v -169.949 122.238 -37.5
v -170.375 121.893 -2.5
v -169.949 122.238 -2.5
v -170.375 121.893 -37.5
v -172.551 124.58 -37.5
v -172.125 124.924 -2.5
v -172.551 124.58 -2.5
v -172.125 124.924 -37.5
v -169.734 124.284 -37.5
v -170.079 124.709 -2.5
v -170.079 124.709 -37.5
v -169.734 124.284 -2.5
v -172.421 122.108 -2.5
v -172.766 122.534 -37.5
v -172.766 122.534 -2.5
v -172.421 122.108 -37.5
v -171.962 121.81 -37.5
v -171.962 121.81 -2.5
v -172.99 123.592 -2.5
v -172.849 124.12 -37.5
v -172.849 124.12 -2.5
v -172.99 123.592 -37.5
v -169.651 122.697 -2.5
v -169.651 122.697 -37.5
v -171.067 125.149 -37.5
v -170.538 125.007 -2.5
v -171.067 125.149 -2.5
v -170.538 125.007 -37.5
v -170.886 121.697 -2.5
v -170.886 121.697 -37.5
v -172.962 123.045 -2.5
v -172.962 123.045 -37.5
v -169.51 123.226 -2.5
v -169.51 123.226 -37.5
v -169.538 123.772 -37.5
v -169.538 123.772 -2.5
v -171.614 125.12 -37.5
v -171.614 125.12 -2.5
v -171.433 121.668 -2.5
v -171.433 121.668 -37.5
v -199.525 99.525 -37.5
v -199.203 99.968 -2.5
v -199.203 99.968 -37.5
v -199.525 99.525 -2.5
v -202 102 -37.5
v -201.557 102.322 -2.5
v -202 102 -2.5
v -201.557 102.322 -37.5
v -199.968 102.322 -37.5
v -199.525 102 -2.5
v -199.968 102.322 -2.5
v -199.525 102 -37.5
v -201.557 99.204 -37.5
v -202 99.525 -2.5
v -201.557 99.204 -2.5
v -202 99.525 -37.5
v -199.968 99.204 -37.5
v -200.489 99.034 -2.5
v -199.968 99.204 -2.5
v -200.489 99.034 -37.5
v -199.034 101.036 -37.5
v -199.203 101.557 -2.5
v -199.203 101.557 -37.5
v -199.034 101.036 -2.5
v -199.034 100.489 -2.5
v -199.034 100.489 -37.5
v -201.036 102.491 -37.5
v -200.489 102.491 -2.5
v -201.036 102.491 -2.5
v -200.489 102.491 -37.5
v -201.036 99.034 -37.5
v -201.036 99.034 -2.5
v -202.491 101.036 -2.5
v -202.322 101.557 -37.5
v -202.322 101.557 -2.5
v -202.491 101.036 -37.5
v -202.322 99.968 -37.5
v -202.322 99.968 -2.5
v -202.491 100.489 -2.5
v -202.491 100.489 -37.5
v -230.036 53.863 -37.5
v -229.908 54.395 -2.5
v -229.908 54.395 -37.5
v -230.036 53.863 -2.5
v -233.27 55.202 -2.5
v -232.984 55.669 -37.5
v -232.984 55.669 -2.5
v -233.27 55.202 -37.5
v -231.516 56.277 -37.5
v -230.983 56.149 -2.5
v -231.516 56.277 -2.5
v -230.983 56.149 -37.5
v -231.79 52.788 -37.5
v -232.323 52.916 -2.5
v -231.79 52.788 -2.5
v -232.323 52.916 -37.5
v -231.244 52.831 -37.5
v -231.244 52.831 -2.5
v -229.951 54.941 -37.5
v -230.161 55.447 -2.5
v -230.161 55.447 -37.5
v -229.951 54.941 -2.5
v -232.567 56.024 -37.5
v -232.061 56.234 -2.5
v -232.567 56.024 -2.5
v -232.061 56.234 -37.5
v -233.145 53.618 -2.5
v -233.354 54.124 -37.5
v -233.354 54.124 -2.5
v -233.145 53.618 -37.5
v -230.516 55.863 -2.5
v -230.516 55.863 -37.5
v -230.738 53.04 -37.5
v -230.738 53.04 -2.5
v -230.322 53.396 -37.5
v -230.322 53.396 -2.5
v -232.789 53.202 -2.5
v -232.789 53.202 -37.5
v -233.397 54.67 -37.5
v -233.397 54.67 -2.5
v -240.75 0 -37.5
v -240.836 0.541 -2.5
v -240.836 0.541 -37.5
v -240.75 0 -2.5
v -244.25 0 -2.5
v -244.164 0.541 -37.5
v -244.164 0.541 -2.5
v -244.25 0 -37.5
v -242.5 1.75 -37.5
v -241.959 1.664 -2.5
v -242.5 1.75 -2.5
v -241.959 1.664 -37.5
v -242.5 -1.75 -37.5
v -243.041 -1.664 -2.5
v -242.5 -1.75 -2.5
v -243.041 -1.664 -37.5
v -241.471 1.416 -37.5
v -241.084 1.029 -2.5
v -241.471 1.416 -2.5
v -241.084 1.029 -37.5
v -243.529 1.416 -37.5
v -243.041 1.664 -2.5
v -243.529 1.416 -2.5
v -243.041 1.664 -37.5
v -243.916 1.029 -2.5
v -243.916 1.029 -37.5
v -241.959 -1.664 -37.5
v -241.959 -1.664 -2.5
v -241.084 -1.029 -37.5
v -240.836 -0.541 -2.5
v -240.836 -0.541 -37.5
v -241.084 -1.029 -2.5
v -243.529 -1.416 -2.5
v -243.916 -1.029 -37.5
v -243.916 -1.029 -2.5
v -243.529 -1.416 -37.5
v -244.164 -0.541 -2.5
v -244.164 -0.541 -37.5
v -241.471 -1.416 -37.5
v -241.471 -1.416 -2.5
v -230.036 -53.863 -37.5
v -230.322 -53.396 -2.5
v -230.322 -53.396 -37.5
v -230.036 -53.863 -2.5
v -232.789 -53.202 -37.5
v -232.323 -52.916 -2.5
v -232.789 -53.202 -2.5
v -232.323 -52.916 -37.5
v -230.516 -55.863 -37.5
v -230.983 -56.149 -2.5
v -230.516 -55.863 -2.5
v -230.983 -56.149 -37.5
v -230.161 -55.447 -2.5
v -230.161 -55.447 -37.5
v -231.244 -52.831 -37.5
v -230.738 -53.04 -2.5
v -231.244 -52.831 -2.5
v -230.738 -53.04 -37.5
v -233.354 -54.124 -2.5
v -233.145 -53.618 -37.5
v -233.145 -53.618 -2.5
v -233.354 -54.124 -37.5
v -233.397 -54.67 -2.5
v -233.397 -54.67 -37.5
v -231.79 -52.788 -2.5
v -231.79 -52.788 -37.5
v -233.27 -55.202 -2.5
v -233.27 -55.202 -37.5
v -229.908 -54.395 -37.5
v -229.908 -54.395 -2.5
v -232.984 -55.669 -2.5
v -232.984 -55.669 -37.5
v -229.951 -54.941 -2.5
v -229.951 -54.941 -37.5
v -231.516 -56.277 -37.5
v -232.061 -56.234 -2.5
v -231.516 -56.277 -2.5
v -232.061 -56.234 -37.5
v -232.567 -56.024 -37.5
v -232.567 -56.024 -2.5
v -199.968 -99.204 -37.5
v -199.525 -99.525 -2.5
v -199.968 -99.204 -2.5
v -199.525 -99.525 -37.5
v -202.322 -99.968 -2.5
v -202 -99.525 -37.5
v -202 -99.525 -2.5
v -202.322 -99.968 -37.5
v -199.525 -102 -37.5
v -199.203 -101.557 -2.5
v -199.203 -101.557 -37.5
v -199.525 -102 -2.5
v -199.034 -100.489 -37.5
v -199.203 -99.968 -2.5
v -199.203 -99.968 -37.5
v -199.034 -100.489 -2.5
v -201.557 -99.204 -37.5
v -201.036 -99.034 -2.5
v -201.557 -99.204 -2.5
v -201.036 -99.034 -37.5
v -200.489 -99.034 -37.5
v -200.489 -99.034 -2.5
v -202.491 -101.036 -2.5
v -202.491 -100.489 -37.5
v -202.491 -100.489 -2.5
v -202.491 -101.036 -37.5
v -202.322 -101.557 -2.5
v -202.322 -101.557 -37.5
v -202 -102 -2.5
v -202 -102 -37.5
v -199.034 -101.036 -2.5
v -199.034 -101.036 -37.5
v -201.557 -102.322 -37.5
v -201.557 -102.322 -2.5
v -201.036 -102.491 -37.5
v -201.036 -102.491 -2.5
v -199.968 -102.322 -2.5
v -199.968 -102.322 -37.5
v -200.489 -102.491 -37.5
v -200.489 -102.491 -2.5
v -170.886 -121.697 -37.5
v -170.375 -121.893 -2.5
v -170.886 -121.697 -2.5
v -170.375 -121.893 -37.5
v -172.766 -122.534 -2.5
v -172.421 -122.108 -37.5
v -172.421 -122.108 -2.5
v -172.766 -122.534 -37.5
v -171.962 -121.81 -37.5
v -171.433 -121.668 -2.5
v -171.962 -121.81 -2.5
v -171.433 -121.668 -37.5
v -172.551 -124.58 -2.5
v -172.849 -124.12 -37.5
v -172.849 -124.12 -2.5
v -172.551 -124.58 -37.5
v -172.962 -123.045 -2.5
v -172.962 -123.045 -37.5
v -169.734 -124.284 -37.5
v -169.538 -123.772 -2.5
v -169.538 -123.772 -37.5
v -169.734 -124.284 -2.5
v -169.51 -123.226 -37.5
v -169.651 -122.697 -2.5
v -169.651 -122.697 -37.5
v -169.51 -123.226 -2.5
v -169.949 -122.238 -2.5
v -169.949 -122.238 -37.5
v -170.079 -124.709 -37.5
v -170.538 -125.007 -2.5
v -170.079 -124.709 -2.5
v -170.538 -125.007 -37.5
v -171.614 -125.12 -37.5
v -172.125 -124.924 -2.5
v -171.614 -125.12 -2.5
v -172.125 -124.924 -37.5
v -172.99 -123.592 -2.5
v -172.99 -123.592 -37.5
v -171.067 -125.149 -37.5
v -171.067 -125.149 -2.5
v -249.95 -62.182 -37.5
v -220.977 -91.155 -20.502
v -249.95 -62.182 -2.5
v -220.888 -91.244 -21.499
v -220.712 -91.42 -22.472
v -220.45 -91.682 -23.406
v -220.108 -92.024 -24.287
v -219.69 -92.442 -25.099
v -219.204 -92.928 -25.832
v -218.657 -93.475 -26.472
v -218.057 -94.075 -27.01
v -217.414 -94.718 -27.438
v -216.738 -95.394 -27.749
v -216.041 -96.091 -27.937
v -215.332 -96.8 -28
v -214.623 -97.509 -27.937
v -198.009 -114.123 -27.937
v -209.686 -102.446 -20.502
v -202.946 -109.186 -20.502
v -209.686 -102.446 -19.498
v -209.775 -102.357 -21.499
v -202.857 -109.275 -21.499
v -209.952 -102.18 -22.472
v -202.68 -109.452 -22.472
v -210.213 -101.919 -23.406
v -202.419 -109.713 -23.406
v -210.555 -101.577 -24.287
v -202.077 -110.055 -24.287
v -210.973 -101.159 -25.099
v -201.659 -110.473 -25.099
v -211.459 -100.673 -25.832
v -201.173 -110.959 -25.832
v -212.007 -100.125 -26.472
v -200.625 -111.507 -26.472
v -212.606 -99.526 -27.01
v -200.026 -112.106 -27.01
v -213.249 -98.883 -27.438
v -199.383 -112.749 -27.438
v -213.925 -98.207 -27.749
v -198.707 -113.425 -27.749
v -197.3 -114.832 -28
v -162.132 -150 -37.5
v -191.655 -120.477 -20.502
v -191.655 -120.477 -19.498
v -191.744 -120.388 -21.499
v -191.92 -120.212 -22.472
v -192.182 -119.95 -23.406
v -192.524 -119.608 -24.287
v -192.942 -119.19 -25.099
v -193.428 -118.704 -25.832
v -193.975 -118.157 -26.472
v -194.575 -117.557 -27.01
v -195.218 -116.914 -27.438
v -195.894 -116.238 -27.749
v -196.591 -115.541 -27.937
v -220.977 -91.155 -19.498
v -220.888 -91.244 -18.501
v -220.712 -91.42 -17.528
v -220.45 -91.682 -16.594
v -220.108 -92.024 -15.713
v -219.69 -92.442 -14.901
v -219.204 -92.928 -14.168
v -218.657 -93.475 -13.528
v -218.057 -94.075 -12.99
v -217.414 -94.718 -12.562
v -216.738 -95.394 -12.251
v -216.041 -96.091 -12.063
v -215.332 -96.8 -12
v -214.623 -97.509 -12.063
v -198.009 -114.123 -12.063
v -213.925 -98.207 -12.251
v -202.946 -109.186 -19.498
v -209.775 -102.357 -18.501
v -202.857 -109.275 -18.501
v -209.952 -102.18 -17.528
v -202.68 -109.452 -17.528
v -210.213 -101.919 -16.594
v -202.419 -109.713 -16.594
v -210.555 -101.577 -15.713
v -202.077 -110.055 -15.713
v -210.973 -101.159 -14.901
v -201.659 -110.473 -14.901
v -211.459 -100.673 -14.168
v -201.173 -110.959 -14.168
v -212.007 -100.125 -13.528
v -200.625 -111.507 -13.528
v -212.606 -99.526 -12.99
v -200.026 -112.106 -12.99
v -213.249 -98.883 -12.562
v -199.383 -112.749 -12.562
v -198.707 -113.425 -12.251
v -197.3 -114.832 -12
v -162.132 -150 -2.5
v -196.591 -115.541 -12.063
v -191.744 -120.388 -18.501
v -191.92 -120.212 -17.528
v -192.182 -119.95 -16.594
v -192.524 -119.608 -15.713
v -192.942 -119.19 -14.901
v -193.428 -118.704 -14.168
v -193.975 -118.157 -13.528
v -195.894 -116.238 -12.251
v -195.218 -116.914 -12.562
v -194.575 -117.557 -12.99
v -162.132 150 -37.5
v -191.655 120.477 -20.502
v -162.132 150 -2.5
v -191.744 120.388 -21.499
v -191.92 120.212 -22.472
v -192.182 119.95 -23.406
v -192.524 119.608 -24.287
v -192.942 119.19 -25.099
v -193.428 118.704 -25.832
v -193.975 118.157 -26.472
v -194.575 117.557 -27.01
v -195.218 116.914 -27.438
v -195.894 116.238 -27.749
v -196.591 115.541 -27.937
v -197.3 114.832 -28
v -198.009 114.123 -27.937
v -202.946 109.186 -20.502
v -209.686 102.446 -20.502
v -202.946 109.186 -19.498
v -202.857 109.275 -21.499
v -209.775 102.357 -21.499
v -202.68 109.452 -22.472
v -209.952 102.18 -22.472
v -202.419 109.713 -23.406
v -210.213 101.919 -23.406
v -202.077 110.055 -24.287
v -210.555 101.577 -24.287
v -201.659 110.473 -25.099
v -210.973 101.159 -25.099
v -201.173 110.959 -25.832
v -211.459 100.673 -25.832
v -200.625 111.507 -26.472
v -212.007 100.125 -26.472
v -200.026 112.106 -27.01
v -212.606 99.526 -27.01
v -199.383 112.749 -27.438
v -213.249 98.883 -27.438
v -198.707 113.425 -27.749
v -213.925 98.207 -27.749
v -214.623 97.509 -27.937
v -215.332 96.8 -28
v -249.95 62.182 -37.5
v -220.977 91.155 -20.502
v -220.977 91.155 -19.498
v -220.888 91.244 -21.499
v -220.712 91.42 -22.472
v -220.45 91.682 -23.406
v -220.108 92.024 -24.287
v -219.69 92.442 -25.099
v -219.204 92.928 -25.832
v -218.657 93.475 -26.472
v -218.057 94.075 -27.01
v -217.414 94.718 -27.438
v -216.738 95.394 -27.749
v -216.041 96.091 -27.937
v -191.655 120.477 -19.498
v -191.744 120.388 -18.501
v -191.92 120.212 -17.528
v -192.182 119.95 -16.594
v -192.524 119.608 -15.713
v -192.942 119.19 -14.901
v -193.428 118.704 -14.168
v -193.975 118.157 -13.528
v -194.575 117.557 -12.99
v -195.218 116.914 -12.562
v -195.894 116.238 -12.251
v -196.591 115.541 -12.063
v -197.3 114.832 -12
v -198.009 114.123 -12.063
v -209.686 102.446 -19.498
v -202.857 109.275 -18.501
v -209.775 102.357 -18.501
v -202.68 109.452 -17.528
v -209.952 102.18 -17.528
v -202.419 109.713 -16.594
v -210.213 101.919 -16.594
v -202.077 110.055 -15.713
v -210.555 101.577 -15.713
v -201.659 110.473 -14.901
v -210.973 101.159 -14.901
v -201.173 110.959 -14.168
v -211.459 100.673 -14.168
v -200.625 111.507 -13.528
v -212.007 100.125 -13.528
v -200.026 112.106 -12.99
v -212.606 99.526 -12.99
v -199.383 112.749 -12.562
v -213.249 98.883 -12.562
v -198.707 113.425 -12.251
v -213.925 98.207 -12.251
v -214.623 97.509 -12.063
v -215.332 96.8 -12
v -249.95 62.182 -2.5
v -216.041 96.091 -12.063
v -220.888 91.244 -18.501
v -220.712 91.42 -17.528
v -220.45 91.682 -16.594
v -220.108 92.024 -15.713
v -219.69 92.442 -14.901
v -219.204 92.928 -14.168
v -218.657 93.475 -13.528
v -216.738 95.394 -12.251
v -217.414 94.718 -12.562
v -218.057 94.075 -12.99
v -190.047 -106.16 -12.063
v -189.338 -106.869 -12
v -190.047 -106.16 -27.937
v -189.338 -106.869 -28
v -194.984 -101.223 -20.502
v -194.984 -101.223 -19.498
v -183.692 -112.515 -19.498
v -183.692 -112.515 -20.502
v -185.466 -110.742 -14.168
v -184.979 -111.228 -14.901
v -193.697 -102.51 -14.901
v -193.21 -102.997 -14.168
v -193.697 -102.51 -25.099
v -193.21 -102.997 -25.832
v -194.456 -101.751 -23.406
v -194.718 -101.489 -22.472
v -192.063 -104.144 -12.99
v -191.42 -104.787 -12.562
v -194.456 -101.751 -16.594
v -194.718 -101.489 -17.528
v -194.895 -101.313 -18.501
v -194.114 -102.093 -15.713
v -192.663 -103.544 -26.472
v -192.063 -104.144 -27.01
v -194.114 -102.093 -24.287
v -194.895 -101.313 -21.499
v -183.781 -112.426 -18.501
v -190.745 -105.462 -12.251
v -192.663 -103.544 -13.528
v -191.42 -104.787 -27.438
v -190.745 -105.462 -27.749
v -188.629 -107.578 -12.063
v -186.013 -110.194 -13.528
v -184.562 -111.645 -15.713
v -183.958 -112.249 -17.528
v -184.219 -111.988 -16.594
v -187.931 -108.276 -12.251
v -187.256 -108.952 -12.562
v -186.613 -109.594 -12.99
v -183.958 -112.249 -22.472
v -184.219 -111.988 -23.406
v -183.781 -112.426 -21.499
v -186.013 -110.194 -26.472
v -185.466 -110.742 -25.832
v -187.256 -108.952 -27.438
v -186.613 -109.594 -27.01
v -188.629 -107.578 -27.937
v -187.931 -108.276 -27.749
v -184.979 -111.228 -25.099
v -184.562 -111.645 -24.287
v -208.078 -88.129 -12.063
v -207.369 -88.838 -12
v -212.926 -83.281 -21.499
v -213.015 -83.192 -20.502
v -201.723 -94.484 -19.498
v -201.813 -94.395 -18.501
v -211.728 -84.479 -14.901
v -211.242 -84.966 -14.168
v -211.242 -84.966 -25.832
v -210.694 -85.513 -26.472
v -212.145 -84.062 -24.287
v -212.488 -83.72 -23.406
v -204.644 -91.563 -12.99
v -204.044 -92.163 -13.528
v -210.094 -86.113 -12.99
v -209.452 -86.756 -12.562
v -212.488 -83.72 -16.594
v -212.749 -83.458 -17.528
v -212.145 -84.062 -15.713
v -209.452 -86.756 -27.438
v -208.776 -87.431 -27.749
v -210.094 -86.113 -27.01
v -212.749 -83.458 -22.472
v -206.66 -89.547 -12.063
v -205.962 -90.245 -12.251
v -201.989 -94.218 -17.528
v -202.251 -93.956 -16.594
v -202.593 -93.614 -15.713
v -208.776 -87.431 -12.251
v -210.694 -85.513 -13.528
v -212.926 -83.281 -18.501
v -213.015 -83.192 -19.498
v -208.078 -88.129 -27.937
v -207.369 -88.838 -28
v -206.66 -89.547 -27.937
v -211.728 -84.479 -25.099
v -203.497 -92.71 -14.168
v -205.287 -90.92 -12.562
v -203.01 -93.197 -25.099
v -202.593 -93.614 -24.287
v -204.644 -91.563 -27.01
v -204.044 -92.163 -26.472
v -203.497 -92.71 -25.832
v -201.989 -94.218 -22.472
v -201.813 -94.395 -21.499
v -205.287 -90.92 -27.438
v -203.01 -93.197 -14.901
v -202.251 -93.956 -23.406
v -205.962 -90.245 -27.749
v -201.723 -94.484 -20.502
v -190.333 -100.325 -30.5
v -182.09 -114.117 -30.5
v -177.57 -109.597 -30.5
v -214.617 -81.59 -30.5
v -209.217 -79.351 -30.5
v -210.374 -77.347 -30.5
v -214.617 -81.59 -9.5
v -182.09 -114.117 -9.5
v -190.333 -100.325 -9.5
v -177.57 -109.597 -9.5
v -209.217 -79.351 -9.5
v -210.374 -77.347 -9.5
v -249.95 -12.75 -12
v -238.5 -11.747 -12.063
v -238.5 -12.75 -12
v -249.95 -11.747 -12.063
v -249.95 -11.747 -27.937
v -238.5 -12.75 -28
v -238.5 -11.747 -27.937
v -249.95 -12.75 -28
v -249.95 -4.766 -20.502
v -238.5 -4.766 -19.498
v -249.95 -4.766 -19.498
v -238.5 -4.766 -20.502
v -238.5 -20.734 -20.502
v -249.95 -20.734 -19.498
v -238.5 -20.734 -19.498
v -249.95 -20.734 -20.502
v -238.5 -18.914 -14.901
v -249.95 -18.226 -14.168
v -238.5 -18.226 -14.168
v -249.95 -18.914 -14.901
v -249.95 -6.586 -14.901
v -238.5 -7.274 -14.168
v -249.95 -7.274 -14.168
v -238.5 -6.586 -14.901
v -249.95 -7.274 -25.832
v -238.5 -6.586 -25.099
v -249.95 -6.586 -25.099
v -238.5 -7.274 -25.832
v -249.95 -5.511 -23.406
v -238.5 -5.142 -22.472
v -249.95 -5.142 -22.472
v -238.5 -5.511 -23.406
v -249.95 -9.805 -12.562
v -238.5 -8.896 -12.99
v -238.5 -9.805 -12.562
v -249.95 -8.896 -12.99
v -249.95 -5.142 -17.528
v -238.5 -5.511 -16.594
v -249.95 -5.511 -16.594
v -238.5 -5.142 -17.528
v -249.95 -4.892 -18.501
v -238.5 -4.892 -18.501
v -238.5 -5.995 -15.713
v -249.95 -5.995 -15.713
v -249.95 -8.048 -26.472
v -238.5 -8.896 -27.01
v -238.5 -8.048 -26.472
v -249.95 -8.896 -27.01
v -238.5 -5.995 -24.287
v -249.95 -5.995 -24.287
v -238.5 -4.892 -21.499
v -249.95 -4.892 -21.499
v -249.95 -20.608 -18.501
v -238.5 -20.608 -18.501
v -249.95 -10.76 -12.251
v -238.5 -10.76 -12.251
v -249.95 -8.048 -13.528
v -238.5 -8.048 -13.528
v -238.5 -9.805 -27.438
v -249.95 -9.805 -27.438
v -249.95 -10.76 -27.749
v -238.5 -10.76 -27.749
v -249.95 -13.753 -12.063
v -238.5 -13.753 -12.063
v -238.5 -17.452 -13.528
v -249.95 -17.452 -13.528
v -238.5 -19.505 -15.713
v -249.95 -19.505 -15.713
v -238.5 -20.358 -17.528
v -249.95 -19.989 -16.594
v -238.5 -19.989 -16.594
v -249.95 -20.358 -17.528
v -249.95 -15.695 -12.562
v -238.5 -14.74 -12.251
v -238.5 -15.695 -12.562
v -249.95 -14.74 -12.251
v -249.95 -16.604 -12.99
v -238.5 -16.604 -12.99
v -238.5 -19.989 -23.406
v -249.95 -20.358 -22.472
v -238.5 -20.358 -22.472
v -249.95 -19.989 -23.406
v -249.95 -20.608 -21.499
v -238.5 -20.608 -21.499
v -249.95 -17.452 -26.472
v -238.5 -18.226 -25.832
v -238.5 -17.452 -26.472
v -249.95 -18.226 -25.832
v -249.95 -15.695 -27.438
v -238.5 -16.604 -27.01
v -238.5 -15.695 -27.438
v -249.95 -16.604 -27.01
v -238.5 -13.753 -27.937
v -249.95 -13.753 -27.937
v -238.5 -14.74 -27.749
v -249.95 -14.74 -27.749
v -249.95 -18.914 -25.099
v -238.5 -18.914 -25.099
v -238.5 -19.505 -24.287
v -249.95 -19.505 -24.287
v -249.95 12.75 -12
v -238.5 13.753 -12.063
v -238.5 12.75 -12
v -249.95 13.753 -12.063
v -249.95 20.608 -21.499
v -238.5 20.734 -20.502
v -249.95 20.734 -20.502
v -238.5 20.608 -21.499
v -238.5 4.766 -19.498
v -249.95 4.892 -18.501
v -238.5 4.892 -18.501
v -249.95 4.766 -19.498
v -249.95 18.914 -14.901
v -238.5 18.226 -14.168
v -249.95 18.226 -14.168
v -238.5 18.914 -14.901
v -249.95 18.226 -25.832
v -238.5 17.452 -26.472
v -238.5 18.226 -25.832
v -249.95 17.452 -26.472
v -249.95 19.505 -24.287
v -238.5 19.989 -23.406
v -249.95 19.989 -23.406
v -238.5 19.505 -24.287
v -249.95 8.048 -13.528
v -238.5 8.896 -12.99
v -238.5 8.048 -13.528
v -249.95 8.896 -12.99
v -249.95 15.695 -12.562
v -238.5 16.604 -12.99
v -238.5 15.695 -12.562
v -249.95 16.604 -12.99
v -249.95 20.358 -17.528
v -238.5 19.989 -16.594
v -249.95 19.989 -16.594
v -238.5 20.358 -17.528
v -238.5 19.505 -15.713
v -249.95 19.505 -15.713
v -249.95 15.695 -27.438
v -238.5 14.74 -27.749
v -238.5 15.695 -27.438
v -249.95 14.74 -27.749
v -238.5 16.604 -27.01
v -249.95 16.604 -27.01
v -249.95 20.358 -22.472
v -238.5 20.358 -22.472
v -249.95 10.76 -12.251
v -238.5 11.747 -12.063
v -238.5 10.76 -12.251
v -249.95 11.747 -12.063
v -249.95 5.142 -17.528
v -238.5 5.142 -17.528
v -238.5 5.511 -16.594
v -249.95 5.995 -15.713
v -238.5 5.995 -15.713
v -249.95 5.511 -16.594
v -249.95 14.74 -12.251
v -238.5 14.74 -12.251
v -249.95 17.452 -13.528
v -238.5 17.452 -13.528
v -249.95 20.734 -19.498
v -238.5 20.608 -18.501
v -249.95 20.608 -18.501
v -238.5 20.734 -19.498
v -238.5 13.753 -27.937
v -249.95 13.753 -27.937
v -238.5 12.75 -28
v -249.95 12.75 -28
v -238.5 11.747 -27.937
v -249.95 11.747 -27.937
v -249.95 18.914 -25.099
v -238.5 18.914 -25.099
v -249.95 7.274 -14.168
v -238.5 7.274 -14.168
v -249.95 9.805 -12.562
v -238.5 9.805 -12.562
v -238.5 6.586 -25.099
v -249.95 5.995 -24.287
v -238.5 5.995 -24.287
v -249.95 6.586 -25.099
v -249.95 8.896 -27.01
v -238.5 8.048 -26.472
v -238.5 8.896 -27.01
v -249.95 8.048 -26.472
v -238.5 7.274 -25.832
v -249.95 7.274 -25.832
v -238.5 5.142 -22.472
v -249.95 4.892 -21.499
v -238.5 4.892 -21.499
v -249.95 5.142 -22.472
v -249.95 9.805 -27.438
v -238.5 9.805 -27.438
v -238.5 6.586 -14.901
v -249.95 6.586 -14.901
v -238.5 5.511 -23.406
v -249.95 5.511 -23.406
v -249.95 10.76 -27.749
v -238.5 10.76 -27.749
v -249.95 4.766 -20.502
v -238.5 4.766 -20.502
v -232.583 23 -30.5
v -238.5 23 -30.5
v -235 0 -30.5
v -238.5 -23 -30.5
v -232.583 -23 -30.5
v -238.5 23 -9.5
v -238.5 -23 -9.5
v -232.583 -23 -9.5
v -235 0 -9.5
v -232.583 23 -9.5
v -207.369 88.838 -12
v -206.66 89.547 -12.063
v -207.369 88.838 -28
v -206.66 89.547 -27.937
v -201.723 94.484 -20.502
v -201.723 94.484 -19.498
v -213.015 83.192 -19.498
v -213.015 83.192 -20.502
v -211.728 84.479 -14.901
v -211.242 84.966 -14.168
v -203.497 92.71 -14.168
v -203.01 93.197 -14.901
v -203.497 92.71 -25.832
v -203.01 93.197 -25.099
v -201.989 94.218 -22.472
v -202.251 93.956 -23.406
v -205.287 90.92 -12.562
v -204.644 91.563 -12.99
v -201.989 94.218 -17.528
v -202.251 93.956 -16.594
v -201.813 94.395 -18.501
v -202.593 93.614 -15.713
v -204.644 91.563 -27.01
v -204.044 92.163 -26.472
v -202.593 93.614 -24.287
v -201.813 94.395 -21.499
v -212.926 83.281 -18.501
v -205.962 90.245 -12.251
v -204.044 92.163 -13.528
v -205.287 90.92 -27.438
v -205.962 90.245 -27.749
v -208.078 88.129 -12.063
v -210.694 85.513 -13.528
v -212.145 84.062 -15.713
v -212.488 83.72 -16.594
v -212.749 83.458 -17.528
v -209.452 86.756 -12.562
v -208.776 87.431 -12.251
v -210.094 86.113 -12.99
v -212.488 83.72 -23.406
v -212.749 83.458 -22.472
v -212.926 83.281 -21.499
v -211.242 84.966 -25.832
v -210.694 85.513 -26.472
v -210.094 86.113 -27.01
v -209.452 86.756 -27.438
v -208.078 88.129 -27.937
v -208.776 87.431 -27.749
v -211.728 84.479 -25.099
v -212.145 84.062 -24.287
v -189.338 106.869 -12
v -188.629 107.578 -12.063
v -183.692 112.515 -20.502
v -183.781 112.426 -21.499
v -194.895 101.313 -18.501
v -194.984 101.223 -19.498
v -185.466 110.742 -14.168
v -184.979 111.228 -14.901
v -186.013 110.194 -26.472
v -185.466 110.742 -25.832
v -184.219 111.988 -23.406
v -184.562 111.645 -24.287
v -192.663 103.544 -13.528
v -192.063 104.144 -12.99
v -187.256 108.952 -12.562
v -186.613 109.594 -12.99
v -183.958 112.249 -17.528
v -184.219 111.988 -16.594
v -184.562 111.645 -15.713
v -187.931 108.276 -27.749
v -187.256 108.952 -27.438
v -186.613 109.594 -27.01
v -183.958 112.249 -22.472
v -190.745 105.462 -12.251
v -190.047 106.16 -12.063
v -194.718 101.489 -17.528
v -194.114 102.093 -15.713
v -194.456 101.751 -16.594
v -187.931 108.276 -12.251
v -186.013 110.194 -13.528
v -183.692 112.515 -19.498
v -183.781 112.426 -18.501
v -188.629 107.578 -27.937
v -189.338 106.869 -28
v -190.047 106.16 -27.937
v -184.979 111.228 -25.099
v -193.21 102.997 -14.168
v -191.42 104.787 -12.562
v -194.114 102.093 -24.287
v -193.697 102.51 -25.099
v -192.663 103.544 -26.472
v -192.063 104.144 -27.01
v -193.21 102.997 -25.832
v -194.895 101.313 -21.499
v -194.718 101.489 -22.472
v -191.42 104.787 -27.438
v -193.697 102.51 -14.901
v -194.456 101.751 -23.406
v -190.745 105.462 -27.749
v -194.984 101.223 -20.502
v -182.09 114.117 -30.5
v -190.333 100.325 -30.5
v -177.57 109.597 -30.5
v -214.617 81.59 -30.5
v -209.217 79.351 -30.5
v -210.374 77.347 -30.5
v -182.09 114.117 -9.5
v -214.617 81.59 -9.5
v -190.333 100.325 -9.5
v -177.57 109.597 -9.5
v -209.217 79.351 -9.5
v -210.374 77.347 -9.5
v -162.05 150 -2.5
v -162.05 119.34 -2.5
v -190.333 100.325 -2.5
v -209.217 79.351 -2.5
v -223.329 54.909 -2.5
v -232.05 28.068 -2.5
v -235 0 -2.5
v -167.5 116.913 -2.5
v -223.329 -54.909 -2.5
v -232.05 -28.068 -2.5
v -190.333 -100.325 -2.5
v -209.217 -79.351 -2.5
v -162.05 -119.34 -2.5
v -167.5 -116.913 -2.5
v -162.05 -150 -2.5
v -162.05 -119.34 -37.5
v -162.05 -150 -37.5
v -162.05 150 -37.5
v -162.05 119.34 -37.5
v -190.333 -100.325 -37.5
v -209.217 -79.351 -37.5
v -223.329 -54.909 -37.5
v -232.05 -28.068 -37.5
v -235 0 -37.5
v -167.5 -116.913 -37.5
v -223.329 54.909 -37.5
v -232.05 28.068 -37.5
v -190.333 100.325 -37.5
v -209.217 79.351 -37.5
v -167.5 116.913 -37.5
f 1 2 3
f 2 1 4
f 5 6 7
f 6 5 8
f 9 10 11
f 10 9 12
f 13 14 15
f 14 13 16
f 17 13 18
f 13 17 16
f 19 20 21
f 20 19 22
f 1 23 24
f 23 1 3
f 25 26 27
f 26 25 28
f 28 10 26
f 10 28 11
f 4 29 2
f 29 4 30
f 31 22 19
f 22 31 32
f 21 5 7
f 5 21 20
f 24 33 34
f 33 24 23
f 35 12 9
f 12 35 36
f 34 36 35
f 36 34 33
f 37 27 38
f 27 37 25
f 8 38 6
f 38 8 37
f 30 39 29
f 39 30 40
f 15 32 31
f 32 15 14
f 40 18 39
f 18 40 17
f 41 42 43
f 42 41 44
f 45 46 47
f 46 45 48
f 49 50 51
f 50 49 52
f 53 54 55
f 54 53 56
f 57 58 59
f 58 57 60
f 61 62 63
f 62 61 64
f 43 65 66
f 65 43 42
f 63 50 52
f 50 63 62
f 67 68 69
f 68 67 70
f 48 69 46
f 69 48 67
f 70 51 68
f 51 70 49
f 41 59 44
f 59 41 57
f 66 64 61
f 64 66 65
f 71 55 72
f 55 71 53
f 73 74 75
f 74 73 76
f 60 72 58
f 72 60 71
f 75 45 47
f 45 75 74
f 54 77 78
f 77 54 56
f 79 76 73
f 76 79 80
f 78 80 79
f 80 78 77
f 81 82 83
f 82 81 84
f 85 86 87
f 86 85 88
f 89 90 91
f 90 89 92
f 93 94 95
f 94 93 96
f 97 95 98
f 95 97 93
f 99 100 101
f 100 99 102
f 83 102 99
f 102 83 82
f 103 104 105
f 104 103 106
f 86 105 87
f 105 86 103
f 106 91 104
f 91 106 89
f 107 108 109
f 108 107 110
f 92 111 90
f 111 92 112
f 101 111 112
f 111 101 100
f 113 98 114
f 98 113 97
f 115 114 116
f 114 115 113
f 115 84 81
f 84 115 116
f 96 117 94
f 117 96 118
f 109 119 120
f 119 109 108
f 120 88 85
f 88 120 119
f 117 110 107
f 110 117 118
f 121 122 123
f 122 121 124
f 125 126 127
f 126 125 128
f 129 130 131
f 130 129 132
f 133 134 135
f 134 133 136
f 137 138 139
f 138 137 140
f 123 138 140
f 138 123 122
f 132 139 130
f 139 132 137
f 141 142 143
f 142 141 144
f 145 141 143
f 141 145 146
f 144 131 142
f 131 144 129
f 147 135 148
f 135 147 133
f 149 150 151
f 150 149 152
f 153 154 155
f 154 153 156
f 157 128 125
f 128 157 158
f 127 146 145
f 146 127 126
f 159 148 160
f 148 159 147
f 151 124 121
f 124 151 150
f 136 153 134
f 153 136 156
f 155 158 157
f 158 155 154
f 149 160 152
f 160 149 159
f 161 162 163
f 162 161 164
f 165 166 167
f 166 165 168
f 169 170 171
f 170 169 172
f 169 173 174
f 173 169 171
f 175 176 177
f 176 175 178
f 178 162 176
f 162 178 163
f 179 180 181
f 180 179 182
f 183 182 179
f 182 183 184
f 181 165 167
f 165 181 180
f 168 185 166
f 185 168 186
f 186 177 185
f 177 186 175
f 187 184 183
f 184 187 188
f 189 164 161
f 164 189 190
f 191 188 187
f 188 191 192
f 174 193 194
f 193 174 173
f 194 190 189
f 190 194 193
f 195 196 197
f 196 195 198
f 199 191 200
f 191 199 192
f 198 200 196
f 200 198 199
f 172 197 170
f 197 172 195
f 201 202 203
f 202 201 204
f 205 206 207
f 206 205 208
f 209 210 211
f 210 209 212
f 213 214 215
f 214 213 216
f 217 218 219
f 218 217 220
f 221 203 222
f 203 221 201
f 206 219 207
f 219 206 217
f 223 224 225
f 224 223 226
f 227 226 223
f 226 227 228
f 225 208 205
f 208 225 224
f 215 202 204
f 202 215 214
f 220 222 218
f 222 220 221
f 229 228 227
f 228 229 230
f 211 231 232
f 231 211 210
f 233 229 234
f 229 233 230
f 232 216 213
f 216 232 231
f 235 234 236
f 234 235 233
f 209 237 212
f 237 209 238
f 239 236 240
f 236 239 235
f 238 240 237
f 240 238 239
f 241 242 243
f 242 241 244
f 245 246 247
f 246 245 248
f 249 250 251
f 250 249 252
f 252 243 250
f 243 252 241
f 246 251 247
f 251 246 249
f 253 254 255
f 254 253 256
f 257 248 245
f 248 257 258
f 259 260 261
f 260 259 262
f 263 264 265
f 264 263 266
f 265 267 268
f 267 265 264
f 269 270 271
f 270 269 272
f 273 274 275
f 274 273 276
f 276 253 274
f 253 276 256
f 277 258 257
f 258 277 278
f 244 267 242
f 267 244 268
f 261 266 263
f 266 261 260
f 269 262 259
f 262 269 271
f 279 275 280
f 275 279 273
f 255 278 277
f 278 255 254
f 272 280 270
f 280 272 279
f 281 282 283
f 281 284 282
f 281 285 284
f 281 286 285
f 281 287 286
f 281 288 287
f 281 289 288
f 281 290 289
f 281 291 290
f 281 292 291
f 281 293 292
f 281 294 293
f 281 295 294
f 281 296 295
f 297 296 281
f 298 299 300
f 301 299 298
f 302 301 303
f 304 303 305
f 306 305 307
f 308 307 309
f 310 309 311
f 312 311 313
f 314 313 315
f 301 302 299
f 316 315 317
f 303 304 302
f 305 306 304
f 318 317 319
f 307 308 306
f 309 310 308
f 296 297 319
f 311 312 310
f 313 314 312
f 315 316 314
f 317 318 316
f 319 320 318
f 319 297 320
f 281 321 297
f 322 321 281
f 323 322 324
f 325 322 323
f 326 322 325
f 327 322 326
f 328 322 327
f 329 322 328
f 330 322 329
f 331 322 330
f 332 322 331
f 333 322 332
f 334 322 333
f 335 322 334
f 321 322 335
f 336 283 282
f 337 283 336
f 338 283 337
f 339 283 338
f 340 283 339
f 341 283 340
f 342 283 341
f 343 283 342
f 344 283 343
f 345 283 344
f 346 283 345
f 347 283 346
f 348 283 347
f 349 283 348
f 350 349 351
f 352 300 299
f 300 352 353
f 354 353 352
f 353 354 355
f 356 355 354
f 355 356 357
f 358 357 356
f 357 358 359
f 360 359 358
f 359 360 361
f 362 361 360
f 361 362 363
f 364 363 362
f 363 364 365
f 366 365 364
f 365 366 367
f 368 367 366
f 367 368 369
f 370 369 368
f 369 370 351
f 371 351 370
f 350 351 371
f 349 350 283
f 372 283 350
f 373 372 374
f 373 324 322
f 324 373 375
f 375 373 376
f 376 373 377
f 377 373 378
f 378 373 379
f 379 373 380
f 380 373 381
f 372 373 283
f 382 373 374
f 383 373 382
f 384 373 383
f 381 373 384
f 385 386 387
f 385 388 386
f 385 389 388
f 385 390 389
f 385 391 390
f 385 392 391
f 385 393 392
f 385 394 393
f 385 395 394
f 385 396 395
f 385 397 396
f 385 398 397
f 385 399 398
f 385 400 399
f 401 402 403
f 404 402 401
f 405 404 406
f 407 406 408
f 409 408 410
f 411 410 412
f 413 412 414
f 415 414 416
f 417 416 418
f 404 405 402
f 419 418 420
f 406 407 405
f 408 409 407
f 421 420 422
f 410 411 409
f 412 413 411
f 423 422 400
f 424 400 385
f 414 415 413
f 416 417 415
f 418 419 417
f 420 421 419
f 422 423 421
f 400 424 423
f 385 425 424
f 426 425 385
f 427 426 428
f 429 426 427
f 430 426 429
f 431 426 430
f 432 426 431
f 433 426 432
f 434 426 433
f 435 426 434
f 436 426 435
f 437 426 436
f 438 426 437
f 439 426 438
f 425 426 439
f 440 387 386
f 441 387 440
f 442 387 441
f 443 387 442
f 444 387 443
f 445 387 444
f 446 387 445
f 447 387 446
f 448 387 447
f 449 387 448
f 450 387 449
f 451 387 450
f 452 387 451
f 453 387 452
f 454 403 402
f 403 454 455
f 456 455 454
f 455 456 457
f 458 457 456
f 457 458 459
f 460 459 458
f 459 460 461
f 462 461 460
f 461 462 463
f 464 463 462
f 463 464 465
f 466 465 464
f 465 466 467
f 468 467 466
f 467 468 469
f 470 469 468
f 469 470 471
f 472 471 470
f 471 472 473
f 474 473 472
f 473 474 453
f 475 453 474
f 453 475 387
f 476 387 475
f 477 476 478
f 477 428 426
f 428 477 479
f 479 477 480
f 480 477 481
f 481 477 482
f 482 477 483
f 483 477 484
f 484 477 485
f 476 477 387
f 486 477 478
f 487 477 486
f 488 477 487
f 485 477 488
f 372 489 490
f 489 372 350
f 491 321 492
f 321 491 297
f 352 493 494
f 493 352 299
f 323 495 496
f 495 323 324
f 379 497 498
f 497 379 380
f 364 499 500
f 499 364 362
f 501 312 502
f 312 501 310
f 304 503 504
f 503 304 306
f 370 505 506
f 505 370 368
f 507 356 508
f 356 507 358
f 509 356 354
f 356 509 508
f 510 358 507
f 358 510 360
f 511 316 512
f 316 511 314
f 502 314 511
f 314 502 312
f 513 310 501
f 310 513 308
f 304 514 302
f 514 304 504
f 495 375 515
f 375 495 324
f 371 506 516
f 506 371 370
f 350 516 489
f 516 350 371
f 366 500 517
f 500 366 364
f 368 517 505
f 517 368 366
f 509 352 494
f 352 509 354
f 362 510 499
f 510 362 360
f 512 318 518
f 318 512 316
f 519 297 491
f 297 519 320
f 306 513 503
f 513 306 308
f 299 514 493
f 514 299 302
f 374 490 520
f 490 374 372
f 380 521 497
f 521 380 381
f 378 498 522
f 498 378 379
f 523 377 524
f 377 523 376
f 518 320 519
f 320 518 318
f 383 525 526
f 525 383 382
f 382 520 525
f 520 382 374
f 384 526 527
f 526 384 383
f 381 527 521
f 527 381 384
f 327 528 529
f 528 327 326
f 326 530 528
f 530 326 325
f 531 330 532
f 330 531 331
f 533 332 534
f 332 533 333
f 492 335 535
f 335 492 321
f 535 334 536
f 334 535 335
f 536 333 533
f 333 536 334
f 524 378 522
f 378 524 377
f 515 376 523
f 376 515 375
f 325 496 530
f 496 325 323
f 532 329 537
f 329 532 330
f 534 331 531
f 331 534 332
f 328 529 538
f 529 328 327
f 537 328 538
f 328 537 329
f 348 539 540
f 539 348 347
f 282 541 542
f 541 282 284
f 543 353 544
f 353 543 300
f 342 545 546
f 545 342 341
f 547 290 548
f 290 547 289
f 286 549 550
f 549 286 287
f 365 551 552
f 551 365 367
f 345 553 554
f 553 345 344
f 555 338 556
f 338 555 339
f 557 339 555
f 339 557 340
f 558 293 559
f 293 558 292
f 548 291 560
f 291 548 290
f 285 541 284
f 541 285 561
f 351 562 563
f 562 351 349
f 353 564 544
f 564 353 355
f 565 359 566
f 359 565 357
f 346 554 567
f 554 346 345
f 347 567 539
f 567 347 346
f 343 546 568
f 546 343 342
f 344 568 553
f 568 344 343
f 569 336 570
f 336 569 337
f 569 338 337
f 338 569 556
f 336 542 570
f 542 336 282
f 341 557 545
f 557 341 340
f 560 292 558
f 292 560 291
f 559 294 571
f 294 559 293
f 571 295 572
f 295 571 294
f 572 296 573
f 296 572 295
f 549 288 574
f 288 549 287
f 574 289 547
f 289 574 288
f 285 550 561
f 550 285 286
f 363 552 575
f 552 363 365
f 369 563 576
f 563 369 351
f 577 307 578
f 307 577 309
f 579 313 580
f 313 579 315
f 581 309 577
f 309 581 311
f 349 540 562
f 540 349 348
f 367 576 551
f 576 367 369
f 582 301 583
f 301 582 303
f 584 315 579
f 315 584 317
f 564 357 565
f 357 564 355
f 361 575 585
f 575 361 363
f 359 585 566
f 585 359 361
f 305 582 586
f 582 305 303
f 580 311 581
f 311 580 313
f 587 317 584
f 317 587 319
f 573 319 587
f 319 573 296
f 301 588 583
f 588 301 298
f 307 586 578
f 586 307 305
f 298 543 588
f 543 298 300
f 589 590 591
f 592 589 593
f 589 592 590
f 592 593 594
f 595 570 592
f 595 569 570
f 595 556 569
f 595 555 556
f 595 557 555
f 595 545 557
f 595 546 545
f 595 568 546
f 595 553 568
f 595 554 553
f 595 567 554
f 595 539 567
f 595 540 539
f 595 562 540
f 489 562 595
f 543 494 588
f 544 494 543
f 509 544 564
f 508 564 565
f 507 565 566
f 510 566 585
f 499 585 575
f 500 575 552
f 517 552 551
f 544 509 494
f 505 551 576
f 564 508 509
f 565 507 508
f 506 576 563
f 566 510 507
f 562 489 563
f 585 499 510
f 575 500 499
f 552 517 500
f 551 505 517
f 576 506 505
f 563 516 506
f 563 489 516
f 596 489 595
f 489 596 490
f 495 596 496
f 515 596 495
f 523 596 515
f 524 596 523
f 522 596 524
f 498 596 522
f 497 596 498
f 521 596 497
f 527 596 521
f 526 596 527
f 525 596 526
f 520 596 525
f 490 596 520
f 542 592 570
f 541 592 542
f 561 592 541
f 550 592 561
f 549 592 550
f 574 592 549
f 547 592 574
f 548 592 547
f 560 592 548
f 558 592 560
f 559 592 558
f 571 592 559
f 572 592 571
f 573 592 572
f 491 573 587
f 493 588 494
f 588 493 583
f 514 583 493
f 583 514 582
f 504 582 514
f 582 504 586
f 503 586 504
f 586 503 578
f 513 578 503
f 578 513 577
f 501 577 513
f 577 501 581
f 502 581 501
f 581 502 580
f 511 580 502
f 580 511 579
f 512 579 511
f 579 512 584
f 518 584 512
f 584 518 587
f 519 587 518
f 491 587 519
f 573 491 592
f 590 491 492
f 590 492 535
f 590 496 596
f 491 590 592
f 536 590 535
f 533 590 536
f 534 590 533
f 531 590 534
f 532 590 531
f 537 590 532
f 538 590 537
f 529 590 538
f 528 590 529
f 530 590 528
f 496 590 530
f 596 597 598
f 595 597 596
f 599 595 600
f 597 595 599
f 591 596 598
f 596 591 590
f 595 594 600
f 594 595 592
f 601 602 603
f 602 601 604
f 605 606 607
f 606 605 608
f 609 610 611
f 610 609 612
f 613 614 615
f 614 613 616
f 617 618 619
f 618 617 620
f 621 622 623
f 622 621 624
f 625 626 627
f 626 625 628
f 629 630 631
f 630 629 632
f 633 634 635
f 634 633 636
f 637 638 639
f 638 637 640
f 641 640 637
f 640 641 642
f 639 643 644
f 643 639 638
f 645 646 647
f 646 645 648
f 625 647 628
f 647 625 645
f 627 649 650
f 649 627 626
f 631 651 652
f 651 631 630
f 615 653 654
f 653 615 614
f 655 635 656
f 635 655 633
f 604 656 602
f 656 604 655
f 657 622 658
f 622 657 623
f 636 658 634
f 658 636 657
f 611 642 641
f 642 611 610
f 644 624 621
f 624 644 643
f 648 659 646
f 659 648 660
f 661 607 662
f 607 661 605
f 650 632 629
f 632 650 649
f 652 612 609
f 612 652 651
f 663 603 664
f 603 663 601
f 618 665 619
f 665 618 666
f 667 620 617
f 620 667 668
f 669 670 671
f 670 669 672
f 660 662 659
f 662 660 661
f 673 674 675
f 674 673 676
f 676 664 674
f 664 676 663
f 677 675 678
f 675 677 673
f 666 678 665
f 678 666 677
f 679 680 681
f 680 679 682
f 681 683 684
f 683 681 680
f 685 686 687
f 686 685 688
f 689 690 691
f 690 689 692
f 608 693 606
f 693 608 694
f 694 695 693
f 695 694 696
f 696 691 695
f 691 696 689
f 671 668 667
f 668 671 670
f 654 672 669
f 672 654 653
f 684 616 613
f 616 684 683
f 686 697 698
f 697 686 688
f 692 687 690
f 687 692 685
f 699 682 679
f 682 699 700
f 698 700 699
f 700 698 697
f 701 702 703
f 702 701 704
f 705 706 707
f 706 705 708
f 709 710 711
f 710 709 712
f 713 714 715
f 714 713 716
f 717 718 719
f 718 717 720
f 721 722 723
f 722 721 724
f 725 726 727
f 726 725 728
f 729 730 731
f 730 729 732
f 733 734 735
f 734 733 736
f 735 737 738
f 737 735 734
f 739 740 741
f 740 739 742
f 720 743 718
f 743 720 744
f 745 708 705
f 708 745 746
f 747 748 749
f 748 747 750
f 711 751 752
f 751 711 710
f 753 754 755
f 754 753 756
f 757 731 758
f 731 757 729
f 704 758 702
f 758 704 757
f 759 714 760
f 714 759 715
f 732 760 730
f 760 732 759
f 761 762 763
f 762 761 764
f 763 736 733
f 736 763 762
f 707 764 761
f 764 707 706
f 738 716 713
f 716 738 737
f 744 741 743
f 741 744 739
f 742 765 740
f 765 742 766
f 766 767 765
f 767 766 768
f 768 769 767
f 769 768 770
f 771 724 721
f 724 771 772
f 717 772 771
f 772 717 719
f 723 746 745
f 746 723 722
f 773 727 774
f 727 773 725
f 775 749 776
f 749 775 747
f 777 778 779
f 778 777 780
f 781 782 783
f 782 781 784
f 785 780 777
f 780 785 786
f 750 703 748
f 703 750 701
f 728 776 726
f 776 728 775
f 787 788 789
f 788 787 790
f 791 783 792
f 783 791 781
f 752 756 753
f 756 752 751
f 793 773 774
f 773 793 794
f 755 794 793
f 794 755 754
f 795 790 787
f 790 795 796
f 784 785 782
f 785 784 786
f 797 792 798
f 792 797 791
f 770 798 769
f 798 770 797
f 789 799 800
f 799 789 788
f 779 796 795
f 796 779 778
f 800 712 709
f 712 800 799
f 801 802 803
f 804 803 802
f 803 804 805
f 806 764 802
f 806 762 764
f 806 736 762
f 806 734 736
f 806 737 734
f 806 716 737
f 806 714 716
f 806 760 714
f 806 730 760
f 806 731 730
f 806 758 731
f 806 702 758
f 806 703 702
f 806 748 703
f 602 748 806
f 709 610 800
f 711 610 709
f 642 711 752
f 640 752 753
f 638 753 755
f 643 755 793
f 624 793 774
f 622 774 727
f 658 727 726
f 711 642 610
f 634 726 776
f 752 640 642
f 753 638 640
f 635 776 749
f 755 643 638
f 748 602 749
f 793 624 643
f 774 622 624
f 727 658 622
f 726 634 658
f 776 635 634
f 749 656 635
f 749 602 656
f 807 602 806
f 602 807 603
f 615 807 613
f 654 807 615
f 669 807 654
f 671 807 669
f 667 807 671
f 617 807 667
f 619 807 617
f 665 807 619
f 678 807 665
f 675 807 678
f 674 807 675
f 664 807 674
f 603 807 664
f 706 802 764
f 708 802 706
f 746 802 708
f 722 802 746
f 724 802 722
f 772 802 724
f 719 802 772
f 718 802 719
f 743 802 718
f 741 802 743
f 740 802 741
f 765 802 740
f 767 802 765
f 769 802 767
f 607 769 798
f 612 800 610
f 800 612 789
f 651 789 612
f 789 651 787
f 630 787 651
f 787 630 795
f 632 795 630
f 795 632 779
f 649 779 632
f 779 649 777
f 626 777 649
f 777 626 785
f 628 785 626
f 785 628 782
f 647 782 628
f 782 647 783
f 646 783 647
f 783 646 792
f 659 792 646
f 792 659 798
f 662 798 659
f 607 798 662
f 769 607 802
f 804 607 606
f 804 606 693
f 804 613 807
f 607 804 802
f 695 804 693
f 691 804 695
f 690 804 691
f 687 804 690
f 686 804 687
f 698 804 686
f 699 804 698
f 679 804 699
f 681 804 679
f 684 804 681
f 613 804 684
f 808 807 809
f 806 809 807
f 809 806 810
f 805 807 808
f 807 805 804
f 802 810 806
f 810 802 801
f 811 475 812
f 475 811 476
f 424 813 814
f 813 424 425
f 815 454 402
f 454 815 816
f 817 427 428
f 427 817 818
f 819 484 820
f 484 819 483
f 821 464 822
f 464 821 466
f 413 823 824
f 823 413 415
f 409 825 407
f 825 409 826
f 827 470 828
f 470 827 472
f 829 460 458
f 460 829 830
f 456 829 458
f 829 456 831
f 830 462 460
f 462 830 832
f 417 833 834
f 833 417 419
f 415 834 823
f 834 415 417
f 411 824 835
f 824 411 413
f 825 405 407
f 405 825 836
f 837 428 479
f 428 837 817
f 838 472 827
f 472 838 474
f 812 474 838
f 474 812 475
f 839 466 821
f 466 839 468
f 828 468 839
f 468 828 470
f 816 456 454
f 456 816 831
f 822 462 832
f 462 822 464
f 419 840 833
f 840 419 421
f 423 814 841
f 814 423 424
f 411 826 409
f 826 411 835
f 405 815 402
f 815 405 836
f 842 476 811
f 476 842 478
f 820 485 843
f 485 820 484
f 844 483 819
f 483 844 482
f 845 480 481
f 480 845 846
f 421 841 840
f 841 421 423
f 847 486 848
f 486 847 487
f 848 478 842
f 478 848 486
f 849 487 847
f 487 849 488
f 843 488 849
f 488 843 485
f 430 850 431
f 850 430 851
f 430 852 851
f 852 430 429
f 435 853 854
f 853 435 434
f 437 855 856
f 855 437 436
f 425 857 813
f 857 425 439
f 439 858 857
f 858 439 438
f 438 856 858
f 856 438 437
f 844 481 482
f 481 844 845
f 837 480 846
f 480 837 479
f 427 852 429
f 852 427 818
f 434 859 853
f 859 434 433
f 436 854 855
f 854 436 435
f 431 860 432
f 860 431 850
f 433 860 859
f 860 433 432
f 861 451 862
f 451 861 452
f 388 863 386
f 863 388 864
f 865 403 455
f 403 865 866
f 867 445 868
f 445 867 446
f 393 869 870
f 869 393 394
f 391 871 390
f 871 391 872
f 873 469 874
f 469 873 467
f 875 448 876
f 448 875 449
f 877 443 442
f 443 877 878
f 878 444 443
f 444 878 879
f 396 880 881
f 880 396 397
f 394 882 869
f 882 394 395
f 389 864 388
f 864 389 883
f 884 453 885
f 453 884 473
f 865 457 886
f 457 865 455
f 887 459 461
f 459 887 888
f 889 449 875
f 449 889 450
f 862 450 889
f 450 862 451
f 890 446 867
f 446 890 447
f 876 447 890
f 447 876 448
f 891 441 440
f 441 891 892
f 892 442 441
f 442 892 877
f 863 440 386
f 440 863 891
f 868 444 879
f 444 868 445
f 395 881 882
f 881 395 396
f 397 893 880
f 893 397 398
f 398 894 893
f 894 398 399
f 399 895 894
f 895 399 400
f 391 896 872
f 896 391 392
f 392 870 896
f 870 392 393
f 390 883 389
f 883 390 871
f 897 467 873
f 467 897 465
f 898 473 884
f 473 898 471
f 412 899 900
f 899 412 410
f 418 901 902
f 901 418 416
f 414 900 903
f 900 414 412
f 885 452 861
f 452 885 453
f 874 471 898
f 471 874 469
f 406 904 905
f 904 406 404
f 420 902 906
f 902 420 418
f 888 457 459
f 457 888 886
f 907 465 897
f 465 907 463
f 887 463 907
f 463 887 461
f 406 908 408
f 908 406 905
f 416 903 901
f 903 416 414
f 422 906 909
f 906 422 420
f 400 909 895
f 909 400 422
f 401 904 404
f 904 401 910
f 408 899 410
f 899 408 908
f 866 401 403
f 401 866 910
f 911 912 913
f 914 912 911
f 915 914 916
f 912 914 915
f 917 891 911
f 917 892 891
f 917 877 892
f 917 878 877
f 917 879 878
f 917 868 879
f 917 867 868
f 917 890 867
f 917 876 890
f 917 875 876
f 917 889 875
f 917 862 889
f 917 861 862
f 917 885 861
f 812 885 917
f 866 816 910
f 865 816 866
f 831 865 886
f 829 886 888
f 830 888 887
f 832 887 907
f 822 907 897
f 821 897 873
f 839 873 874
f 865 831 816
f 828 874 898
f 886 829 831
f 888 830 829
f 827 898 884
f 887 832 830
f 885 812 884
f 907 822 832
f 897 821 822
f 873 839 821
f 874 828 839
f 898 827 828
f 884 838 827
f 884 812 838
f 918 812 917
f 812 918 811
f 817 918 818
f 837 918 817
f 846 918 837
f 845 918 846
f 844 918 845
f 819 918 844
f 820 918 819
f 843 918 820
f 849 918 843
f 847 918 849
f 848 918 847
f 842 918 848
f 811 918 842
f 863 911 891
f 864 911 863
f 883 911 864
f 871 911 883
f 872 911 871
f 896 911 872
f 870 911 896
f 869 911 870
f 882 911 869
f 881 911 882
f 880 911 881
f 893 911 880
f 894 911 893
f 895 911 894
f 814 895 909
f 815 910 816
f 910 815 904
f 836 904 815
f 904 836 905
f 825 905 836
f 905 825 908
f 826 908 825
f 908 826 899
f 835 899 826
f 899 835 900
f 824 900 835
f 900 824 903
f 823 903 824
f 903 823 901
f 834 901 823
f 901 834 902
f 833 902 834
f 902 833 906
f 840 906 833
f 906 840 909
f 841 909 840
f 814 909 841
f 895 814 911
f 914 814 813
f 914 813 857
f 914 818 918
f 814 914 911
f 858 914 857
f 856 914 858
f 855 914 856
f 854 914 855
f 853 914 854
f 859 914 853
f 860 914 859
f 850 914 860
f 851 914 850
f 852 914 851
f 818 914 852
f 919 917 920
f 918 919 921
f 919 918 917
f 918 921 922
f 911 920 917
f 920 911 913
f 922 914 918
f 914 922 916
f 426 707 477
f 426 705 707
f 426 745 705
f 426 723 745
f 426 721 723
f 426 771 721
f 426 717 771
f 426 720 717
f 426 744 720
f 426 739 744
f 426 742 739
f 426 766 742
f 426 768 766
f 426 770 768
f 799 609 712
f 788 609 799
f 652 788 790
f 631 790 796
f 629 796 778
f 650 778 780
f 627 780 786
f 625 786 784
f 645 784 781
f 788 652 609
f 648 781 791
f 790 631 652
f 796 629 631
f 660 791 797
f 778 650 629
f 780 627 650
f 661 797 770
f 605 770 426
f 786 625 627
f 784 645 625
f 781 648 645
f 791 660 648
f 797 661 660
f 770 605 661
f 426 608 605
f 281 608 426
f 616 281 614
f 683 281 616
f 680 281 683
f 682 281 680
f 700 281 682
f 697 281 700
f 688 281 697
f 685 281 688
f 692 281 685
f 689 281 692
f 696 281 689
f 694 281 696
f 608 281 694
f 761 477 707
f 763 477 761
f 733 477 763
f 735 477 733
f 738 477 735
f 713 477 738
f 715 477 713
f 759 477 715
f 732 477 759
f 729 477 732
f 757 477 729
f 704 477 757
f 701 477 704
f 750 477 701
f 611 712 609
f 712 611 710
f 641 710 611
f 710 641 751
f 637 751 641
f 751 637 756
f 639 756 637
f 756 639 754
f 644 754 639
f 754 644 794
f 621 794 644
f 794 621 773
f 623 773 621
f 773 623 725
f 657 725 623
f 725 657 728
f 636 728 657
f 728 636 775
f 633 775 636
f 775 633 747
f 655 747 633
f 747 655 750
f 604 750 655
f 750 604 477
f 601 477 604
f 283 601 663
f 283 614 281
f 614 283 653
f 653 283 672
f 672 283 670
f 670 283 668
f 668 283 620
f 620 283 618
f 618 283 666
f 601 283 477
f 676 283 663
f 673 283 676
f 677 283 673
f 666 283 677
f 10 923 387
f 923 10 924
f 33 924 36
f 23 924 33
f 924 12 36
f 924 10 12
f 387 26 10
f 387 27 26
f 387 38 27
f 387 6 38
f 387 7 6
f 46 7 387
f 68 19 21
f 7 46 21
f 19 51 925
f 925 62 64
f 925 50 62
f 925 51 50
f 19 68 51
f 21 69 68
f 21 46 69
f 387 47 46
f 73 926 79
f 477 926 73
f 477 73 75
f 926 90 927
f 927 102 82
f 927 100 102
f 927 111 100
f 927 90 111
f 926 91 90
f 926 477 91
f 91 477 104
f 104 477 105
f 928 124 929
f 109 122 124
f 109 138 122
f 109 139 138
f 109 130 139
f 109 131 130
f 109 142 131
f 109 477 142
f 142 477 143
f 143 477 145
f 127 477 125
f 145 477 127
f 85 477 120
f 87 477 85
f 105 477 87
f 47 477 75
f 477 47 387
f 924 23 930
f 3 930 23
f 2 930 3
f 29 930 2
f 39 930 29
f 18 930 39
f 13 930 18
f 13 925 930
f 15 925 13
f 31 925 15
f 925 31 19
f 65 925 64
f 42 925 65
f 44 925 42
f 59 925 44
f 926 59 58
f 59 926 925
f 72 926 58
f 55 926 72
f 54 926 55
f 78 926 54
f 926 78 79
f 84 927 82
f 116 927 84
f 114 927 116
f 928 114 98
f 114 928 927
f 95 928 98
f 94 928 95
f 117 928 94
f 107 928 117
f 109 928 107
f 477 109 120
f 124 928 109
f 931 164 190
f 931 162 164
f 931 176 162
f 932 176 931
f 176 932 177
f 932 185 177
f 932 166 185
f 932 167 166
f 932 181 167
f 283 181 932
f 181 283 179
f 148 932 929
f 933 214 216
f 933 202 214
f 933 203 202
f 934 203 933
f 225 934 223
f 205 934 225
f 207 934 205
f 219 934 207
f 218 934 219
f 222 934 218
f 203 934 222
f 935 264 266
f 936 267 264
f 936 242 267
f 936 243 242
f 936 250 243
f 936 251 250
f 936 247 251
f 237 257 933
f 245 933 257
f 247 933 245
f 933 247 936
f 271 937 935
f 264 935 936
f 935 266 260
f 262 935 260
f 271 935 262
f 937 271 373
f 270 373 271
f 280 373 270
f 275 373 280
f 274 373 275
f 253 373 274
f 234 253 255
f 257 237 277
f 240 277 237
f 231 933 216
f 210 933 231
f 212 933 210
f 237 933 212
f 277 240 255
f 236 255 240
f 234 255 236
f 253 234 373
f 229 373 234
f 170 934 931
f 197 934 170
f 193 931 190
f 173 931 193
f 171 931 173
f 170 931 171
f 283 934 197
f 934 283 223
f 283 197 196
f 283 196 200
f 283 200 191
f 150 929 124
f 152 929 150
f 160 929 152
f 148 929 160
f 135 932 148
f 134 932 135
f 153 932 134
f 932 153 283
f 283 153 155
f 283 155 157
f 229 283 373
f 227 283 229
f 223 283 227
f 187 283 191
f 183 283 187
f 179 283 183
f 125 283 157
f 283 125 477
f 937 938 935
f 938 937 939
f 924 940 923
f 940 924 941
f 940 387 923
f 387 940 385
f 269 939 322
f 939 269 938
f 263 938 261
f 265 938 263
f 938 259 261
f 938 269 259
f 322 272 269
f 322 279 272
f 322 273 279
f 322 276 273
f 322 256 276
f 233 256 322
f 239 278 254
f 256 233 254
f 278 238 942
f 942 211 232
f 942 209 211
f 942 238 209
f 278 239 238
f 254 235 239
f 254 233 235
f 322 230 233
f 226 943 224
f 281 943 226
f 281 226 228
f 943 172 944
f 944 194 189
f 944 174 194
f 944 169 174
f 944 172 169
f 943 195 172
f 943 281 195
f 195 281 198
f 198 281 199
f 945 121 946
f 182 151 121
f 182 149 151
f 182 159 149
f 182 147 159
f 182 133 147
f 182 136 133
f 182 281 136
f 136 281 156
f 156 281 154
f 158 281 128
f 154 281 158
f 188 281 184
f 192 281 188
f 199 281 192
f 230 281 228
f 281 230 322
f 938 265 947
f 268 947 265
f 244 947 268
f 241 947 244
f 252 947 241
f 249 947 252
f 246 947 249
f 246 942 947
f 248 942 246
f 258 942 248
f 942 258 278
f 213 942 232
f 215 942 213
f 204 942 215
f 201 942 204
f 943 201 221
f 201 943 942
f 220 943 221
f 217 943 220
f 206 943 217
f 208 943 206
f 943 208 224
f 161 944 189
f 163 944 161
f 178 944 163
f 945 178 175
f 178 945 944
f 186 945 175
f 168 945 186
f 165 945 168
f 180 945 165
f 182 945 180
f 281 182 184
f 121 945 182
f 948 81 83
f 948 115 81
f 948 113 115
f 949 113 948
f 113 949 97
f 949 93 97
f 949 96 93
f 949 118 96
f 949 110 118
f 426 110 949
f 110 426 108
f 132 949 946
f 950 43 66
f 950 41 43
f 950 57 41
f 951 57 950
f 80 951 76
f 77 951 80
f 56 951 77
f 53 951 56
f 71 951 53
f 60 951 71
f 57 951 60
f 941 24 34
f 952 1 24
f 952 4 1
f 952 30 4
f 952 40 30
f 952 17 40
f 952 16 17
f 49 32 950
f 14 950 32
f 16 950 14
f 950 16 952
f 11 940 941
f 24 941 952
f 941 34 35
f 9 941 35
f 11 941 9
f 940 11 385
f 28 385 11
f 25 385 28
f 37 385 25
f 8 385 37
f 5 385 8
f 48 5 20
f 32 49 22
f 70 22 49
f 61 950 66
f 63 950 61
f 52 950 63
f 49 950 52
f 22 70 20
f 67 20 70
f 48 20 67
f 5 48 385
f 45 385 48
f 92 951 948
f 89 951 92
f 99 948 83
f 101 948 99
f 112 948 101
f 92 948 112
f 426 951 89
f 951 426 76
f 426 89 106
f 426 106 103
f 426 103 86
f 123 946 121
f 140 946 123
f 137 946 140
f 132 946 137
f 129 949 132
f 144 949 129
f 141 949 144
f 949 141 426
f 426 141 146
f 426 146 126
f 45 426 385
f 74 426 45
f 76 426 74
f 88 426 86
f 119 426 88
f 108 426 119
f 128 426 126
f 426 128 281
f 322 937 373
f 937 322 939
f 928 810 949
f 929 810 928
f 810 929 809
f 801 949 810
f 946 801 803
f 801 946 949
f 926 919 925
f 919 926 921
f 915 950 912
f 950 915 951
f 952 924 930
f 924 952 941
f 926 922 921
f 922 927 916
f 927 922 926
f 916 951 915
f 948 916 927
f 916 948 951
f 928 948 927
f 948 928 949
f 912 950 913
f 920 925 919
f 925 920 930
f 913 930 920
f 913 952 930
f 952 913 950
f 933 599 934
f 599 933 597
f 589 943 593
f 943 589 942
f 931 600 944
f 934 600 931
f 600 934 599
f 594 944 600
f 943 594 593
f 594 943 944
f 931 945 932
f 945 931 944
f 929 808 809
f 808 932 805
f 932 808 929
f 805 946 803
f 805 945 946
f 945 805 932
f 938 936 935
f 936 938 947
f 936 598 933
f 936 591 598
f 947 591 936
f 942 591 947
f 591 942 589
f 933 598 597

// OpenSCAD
// %cube([600,124.3,5],center=true);


*difference() {
// Base    
    cube([500,300,5],center=true);
// Suppression angles avant
    for(i=[-1,1]) translate([-250,i*150,0]) rotate([0,0,i*45]) cube([150,300/sqrt((3+2*sqrt(2))),7],center=true);
}


/**
 * Moteur avec réducteur de longueur variable.
 * @see https://ae01.alicdn.com/kf/HTB1C.FgNXXXXXaJapXXq6xXFXXXq/222102736/HTB1C.FgNXXXXXaJapXXq6xXFXXXq.jpg?size=104274&height=289&width=800&hash=91e54597dd2dd8c9c6fd6ef7daafff6d
 * @param L Longueur du réducteur
 */
module moteur(L=23.0) {
// Moteur
     color("lightgrey") translate([0,0,L+31/2+0.05]) cylinder(d=24.4,h=31-0.1,center=true);
// Place CI    
     color("green") translate([0,0,L+31+2/2]) cylinder(d=24.4,h=2,center=true);
// Capteur
     color("grey") translate([0,0,L+40-6/2]) cylinder(d=14,h=6,center=true);
    
    color("lightgrey") difference() {
// Réducteur
        translate([0,0,L/2]) cylinder(d=24.4,h=L,center=true);
        for(i=[-1/2,1/2]) {
#            translate([0,i*17,0]) cylinder(d=0.5,h=10,center=true);
            translate([0,i*17,0]) cylinder(d=3,h=10,$fn=20,center=true);
        }
    }
// Épaulement
    color("yellow") translate([0,0,-2.5/2]) cylinder(d=7,h=2.5,$fn=20,center=true);
// Axe de sortie
    color("lightgrey") translate([0,0,-12/2]) cylinder(d=4,h=12,,$fn=20,center=true);
}

*difference() {
// Base    
    color("orange") cube([500,300,5],center=true);
// Suppression angles avant
    for(i=[-1,1]) translate([-250,i*150,0]) rotate([0,0,i*45]) cube([150,300/sqrt((3+2*sqrt(2))),7],center=true);
}

// plaque ventrale
*color("orange") translate([250/2-(250-87.9),0,-35]) cube([250,300,5],center=true);

// Bares latérales 30x30x250
*color("lightgrey") for (i=[-1,1]) translate([-37,i*135,-17.5]) cube([250,30,30],center=true);
 
// Module 3D avant
module avant() {  
    difference() {
// Forme générale
        translate([-206,0,-17.5-2.5]) cube([87.9,300,35],center=true);
// Perçages supérieurs
        for (i=[-60,-45,-45/2,0,45/2,45,60]) translate([-100,0,-17.5-2.5]) rotate([0,0,i]) translate([-142.5,0,0]) cylinder(d=3.5,h=45,$fn=20,center=true);
// Creux circulaire
        translate([-100,0,-17.5-2.5]) cylinder(d=270,h=37,center=true);
// Suppression angles avant
        for(i=[-1,1]) translate([-250,i*150,-17.5-2.5]) rotate([0,0,i*45]) cube([150,300/sqrt((3+2*sqrt(2))),37],center=true);

        for (i=[-1,0,1]) translate([-250+12+abs(i)*40,i*97.5,-20]) rotate([0,-90,-i*45]) {
            translate([0,0,-25/2+0.5]) cube([21,46,25],center=true);
            for (y=[-12.75,12.75]) translate([0,y,0]) cylinder(d=16,h=12.3,$fn=50);
         }
    }
}



z = -18;
*for (i=[-1,1]) {
    translate([150,i*130,z]) rotate([0,90,-i*90]) moteur();
    translate([150,i*130+i*15,z]) rotate([0,90,90]) cylinder(d=65,h=20,center=true);
}
avant();
